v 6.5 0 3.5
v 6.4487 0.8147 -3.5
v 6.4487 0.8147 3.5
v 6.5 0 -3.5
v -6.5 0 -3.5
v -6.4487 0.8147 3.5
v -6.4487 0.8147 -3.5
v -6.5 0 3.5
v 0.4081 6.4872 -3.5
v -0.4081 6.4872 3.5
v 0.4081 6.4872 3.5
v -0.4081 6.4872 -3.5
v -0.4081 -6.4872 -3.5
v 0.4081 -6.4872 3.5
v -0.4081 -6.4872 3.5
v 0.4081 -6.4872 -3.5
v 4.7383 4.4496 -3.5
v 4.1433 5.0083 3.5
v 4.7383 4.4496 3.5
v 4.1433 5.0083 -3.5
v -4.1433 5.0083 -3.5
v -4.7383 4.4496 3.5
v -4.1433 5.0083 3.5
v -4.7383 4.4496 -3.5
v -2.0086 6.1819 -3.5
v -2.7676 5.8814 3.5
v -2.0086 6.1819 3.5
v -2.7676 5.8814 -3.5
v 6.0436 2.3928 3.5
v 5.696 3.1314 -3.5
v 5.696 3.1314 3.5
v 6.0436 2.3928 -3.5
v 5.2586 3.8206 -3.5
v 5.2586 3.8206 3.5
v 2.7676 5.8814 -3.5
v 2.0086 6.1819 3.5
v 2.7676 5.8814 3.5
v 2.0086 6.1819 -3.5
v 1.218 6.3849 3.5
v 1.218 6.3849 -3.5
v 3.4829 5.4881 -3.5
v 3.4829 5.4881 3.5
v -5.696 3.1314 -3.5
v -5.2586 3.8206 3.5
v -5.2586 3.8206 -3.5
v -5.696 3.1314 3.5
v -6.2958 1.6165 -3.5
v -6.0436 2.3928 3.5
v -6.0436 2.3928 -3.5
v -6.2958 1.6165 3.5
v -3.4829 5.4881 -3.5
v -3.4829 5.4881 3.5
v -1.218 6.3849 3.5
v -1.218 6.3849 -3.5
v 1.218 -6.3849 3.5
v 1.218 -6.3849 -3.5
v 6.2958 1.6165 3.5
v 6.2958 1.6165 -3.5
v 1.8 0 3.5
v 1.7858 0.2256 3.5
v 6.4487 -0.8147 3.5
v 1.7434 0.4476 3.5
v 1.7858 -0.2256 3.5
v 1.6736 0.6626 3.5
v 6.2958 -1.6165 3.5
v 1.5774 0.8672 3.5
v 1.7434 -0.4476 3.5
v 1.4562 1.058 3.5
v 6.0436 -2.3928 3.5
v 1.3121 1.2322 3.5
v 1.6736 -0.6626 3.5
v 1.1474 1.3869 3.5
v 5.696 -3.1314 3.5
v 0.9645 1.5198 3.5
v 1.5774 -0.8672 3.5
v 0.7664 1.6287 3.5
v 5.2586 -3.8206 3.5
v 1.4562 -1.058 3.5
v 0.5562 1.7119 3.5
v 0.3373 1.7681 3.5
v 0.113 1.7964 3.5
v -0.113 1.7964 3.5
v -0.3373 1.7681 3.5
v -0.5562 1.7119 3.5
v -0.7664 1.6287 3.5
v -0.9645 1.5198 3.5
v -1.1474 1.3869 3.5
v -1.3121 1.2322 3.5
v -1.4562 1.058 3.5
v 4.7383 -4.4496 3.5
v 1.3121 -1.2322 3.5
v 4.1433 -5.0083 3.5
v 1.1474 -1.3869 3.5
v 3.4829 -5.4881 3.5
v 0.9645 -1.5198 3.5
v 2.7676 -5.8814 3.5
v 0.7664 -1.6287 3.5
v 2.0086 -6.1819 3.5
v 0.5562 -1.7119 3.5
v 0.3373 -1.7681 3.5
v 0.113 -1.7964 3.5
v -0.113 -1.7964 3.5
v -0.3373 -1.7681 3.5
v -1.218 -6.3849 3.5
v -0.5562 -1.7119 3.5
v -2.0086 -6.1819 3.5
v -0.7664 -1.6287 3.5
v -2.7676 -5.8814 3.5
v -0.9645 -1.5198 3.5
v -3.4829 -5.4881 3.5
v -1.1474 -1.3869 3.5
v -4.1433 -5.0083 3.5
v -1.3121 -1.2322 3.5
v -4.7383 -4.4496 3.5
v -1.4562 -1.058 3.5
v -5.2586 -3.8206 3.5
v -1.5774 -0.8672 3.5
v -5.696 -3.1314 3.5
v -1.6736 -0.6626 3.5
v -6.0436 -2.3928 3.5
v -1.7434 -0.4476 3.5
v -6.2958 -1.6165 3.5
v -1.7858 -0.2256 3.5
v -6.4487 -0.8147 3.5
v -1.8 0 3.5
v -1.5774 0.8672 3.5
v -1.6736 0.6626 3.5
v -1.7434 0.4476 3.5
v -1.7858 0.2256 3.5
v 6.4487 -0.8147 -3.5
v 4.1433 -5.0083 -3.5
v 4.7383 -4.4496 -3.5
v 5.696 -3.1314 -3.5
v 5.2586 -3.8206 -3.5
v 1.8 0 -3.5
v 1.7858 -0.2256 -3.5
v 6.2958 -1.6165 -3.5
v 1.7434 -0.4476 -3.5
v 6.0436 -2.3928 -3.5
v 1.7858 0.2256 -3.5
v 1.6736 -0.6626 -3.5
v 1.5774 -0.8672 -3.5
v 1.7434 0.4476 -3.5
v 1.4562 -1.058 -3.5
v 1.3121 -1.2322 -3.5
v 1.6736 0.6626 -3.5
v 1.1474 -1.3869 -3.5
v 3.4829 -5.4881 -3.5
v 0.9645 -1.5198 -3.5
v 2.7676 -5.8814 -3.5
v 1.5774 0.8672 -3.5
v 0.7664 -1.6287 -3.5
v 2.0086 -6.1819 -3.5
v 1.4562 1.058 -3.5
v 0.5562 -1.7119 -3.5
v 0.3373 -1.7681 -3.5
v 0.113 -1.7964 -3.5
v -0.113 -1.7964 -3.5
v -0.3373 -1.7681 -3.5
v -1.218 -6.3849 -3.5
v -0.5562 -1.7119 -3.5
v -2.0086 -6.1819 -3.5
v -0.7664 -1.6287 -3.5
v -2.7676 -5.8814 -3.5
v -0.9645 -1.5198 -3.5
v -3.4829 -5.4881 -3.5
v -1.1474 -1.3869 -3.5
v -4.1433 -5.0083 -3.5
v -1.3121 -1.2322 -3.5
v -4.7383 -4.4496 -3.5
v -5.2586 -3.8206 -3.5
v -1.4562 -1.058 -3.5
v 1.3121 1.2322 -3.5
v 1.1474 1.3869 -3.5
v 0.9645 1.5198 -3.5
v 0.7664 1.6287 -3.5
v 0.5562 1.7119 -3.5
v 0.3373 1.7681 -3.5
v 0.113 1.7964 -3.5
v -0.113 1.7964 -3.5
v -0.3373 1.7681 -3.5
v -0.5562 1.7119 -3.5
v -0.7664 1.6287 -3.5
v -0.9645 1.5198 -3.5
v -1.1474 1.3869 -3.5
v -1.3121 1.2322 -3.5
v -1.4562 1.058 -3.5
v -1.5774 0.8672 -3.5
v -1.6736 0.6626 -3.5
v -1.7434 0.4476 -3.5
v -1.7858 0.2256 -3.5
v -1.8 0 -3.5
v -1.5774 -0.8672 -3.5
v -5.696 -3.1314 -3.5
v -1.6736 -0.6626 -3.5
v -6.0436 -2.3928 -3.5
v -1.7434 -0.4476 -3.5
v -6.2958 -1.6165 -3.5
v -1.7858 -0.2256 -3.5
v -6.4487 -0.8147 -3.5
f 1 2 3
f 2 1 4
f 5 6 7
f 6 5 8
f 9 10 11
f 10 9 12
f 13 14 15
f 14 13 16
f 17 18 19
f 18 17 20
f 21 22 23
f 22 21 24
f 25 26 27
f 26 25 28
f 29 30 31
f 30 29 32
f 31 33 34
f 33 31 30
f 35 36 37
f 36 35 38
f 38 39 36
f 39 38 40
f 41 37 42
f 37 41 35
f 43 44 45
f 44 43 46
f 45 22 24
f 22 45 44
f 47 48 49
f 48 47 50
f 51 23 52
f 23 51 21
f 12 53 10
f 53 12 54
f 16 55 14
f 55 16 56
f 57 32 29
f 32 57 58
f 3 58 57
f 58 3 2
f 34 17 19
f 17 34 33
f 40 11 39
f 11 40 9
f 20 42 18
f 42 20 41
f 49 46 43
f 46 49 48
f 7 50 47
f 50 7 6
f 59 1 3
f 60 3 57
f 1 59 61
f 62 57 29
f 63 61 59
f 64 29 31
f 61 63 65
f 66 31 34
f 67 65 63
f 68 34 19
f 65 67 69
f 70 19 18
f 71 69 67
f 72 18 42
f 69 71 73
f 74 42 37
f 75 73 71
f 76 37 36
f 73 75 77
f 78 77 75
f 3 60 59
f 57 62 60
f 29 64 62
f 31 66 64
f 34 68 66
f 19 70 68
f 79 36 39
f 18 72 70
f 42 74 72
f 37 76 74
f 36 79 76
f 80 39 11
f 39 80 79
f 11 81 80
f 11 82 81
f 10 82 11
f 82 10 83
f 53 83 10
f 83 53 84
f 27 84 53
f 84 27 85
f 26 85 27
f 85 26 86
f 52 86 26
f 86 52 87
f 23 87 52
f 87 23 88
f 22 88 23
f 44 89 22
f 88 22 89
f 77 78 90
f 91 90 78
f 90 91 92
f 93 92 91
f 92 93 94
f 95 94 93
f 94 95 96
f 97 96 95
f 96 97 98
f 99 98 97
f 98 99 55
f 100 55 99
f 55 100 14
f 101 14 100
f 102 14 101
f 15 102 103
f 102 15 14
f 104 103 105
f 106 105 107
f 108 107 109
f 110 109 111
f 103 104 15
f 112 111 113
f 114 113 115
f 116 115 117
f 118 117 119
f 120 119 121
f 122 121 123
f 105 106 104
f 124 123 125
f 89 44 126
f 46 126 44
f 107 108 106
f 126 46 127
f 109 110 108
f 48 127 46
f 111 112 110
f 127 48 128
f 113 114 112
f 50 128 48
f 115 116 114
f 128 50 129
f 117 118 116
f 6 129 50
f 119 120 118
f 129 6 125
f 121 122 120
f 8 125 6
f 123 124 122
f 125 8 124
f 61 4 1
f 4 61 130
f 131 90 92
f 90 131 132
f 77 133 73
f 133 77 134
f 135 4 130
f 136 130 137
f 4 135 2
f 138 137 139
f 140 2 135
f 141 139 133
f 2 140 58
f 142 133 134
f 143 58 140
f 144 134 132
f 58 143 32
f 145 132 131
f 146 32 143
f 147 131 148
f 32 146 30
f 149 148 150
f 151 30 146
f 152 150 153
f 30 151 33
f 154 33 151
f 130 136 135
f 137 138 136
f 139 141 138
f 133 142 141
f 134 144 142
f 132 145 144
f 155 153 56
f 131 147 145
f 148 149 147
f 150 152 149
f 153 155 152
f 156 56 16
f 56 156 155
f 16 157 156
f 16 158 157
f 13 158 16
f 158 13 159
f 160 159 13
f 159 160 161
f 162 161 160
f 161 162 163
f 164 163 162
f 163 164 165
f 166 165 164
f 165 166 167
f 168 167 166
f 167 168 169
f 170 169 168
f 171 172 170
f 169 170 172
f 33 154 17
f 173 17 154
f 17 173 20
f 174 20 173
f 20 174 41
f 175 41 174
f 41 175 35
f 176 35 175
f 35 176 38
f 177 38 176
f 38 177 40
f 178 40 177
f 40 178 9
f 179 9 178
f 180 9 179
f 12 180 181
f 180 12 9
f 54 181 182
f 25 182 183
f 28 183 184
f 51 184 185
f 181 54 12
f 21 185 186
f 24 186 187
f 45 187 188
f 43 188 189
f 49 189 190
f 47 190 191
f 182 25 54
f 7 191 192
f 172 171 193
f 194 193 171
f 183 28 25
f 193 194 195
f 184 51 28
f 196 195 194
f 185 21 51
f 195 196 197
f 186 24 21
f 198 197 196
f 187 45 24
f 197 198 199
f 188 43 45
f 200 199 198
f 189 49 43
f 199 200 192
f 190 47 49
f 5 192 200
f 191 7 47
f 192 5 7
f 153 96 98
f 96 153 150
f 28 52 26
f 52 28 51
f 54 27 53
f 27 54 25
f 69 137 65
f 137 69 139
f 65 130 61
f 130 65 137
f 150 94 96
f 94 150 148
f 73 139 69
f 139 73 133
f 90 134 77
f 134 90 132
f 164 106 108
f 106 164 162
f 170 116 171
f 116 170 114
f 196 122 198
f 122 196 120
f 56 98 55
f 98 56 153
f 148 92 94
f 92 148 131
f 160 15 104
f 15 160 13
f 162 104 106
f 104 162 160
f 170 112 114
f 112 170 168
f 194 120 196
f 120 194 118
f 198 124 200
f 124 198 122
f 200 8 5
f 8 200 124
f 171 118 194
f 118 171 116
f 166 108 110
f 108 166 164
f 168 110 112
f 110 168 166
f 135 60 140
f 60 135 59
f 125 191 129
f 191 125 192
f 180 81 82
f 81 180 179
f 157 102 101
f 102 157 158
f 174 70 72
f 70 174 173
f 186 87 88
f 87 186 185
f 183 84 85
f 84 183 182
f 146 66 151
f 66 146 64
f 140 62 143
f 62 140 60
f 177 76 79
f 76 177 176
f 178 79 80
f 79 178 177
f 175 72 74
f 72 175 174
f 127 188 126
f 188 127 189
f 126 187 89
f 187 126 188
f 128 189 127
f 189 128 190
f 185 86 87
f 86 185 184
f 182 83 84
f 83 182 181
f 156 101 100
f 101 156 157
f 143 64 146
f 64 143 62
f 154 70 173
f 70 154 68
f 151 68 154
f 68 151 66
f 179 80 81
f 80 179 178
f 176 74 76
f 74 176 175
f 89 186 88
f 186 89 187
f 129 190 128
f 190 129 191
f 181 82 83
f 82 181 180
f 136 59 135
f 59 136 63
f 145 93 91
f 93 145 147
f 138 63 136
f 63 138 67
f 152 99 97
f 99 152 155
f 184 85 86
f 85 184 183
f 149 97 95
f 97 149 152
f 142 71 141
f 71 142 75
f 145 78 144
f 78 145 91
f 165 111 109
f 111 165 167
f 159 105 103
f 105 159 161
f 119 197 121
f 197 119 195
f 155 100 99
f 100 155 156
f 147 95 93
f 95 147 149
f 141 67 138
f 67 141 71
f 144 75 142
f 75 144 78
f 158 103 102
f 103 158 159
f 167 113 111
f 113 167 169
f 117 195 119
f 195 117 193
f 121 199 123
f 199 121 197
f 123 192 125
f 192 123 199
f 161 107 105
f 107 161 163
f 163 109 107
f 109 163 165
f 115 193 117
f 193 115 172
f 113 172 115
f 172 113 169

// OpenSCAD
$fn = 50;


difference() {
	union() {
		translate(v = [0, 0, -3.5000000000]) {
			cylinder(h = 7, r = 6.5000000000);
		}
	}
	union() {
		translate(v = [0, 0, -100.0000000000]) {
			cylinder(h = 200, r = 1.8000000000);
		}
	}
}
